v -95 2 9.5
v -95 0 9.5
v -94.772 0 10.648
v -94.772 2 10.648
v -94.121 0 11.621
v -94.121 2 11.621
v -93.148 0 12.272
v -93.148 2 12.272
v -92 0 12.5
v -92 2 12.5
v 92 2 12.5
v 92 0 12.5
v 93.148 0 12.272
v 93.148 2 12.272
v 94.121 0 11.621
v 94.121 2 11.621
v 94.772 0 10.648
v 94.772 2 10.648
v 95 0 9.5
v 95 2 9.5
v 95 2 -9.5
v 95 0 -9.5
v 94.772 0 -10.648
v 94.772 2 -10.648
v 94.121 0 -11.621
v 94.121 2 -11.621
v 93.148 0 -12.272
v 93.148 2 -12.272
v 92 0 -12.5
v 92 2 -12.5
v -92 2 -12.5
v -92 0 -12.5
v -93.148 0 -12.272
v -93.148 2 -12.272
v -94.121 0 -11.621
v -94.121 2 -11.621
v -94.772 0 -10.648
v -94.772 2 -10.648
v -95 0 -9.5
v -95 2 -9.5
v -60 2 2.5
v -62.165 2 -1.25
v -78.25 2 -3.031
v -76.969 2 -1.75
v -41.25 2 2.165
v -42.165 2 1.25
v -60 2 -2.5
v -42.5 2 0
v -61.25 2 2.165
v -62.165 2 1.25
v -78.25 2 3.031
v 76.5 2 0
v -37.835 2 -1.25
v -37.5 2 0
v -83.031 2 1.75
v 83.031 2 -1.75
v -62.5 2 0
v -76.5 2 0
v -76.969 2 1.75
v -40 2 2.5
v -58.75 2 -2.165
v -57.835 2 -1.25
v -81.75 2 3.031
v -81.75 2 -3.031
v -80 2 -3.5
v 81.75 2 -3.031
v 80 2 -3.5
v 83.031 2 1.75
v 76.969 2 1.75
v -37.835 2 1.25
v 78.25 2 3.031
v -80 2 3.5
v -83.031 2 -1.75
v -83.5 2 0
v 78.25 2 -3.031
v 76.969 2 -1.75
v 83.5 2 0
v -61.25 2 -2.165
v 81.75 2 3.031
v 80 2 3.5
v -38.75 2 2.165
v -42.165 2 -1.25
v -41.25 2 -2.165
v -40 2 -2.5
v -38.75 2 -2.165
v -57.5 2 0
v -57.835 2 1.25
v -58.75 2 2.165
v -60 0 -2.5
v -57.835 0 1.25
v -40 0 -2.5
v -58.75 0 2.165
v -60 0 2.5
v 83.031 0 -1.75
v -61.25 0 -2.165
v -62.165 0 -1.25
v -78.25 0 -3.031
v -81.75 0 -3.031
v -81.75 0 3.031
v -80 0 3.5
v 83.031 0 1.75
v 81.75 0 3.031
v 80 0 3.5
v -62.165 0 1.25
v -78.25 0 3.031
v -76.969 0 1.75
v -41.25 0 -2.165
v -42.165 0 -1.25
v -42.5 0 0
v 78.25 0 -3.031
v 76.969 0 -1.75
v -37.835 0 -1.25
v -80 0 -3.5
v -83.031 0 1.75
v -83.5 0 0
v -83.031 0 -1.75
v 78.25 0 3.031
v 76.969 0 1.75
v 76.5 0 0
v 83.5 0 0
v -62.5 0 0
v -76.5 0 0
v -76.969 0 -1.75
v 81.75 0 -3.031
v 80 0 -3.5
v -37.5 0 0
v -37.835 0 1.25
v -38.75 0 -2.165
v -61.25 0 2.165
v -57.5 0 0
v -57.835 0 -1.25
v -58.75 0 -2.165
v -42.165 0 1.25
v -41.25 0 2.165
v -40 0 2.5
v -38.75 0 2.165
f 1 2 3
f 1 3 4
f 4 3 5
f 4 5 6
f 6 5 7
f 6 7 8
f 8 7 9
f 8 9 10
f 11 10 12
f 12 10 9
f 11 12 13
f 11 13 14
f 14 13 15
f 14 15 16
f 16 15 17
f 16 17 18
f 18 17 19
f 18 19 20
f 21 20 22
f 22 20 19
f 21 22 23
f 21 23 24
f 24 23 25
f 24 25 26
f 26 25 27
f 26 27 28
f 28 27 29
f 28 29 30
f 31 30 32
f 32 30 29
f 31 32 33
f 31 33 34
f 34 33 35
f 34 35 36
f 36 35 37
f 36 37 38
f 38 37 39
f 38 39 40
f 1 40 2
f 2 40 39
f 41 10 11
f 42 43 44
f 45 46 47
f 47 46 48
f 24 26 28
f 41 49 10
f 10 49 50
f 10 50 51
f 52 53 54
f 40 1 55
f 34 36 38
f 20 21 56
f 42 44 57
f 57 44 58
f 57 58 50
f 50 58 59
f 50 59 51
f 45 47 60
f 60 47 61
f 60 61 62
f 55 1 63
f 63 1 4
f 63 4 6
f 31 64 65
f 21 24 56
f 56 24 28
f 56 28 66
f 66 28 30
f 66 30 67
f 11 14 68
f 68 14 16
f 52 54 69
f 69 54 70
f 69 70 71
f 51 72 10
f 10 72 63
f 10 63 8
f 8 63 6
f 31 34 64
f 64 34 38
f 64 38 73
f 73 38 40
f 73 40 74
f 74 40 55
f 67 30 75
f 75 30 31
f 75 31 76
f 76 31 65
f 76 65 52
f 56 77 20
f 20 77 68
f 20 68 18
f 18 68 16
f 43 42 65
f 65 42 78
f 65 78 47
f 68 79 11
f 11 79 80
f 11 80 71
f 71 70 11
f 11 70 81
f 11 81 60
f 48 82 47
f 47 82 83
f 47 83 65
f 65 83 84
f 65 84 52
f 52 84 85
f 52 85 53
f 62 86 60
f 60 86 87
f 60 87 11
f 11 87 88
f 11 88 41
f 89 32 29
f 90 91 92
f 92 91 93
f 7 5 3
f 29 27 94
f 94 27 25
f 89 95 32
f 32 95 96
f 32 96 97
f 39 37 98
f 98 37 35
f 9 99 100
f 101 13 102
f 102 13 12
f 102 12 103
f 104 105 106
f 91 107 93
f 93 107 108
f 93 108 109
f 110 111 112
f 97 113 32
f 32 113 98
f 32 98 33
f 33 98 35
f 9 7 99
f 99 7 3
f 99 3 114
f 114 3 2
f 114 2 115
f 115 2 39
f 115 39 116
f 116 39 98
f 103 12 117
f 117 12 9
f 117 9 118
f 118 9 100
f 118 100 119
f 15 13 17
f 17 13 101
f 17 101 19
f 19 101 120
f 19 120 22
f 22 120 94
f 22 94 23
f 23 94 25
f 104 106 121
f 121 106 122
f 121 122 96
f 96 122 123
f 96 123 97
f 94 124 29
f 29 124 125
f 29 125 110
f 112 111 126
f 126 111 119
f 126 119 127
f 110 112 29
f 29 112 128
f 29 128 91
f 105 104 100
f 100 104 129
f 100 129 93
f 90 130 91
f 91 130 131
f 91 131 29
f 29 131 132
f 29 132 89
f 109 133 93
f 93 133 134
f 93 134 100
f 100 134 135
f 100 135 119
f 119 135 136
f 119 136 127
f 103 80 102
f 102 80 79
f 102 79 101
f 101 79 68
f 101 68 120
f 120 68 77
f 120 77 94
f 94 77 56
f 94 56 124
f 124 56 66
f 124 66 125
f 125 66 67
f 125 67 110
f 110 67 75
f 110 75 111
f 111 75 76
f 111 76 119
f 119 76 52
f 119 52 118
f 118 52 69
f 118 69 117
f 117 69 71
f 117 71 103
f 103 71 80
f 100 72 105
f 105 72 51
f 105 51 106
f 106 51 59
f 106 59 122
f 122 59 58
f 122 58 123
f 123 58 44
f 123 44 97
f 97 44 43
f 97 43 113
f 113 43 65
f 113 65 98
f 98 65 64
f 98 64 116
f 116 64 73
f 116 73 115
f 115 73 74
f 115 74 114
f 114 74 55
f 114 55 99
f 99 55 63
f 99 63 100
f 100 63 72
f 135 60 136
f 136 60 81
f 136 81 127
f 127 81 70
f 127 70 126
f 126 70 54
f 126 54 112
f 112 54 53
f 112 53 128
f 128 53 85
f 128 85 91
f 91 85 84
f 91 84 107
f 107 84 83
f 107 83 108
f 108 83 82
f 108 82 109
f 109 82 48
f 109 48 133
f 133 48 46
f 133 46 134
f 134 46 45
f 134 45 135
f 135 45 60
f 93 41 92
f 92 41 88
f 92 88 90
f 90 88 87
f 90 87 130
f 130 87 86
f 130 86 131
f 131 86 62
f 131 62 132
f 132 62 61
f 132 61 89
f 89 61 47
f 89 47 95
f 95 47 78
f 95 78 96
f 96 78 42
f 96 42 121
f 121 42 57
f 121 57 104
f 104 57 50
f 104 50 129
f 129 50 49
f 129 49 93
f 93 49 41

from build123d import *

# Parameters (mm, degrees)
BASE_FLANGE1_DEPTH    = 2
F_5_0MM_DOWEL_HOLE1_D = 7
F_5_0MM_DOWEL_HOLE2_D = 5


# Sheet-metal steps are written as plain solids
with BuildPart() as part:
    # Sketch1 → Base-Flange1 (new body)
    with BuildSketch(Plane(origin=(0, 0, 0), x_dir=(1, 0, 0), z_dir=(0, 1, 0))):
        with BuildLine():
            Line((92, -12.5), (-92, -12.5))
            ThreePointArc((-92, -12.5), (-94.121320344, -11.621320344), (-95, -9.5))
            Line((-95, -9.5), (-95, 9.5))
            ThreePointArc((-95, 9.5), (-94.121320344, 11.621320344), (-92, 12.5))
            Line((-92, 12.5), (92, 12.5))
            ThreePointArc((92, 12.5), (94.121320344, 11.621320344), (95, 9.5))
            Line((95, 9.5), (95, -9.5))
            ThreePointArc((95, -9.5), (94.121320344, -11.621320344), (92, -12.5))
        make_face()
    extrude(amount=BASE_FLANGE1_DEPTH)

    # Ø5.0mm Dowel Hole1 (through all)
    with Locations(Plane(origin=(0, 2, 0), x_dir=(1, 0, 0), z_dir=(0, 1, 0))):
        with Locations((-80, 0), (80, 0)):
            Hole(F_5_0MM_DOWEL_HOLE1_D / 2)

    # Ø5.0mm Dowel Hole2 (through all)
    with Locations(Plane(origin=(0, 2, 0), x_dir=(1, 0, 0), z_dir=(0, 1, 0))):
        with Locations((-60, 0), (-40, 0)):
            Hole(F_5_0MM_DOWEL_HOLE2_D / 2)


solid = part.part
